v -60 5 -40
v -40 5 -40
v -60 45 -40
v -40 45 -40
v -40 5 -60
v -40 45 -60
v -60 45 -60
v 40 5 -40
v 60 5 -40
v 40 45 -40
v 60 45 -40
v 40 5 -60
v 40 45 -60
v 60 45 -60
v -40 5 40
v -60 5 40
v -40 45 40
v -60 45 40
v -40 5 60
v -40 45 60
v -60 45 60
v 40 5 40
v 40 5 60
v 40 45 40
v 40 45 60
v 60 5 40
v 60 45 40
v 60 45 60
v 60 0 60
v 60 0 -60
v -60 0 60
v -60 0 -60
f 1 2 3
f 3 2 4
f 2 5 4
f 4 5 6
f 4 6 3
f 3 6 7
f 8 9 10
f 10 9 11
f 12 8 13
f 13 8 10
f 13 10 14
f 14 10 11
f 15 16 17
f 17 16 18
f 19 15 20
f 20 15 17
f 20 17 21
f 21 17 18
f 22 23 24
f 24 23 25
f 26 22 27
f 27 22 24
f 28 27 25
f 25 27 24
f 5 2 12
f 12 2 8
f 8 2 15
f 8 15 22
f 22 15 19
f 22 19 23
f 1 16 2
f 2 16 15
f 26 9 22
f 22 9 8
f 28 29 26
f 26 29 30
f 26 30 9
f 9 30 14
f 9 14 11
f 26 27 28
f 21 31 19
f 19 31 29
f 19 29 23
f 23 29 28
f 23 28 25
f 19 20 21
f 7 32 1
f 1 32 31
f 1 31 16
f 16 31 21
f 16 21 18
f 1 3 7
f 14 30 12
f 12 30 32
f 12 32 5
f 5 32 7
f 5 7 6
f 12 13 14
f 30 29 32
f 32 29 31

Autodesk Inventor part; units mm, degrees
ref_plane "YZ Plane" through (0, 0, 0) normal (1, 0, 0) x (0, 1, 0)
ref_plane "XZ Plane" through (0, 0, 0) normal (0, 1, 0) x (-1, 0, 0)
ref_plane "XY Plane" through (0, 0, 0) normal (0, 0, 1) x (1, 0, 0)
sketch "Sketch1" plane through (0, 0, 0) normal (0, 1, 0) x (-1, 0, 0)
  line L0 (60, -60) -> (-60, -60)
  line L1 (-60, -60) -> (-60, 60)
  line L2 (-60, 60) -> (60, 60)
  line L3 (60, 60) -> (60, -60)
  point P0 (0, 0)
  dimension "d0" = 120
  dimension "d1" = 120
  dimension "d2" = 60
  dimension "d3" = 60
extrude "Extrusion1" add sketch "Sketch1" along normal blind 5
sketch "Sketch2" plane through (0, 5, 0) normal (0, 1, 0) x (1, 0, 0)
  line L0 (-40, 40) -> (-60, 40)
  line L1 (-60, 40) -> (-60, 60)
  line L2 (-60, 60) -> (-40, 60)
  line L3 (-40, 60) -> (-40, 40)
  line L4 (60, -60) -> (40, -60)
  line L5 (40, -60) -> (40, -40)
  line L6 (40, -40) -> (60, -40)
  line L7 (60, -40) -> (60, -60)
  line L8 (60, 60) -> (60, -60) projected
  line L9 (-60, -60) -> (60, -60) projected
  line L10 (60, 60) -> (-60, 60) projected
  line L11 (60, 60) -> (40, 60)
  line L12 (40, 60) -> (40, 40)
  line L13 (40, 40) -> (60, 40)
  line L14 (60, 40) -> (60, 60)
  line L15 (-60, 60) -> (-60, -60) projected
  line L16 (-60, -60) -> (-40, -60)
  line L17 (-40, -60) -> (-40, -40)
  line L18 (-40, -40) -> (-60, -40)
  line L19 (-60, -40) -> (-60, -60)
  point P0 (0, 0)
  dimension "d6" = 20
  dimension "d7" = 20
  dimension "d8" = 20
  dimension "d9" = 20
  dimension "d10" = 0
  dimension "d11" = 0
  dimension "d12" = 20
  dimension "d13" = 20
  dimension "d14" = 20
  dimension "d15" = 20
extrude "Extrusion2" add sketch "Sketch2" along normal blind 40 contours L0 L1 L2 L3 | L18 L17 L9 L15 | L10 L8 L13 L12 | L5 L6 L7 L4
equation "\"d1\" = d0"
equation "\"d2\" = 0.5 * d0"
equation "\"d3\" = 0.5 * d0"
equation "\"d7\" = d6"
equation "\"d8\" = d6"
equation "\"d9\" = d6"
equation "\"d12\" = d6"
equation "\"d13\" = d6"
equation "\"d14\" = d6"
equation "\"d15\" = d6"
properties part number "FalseFloor" material "ABS Plastic"
